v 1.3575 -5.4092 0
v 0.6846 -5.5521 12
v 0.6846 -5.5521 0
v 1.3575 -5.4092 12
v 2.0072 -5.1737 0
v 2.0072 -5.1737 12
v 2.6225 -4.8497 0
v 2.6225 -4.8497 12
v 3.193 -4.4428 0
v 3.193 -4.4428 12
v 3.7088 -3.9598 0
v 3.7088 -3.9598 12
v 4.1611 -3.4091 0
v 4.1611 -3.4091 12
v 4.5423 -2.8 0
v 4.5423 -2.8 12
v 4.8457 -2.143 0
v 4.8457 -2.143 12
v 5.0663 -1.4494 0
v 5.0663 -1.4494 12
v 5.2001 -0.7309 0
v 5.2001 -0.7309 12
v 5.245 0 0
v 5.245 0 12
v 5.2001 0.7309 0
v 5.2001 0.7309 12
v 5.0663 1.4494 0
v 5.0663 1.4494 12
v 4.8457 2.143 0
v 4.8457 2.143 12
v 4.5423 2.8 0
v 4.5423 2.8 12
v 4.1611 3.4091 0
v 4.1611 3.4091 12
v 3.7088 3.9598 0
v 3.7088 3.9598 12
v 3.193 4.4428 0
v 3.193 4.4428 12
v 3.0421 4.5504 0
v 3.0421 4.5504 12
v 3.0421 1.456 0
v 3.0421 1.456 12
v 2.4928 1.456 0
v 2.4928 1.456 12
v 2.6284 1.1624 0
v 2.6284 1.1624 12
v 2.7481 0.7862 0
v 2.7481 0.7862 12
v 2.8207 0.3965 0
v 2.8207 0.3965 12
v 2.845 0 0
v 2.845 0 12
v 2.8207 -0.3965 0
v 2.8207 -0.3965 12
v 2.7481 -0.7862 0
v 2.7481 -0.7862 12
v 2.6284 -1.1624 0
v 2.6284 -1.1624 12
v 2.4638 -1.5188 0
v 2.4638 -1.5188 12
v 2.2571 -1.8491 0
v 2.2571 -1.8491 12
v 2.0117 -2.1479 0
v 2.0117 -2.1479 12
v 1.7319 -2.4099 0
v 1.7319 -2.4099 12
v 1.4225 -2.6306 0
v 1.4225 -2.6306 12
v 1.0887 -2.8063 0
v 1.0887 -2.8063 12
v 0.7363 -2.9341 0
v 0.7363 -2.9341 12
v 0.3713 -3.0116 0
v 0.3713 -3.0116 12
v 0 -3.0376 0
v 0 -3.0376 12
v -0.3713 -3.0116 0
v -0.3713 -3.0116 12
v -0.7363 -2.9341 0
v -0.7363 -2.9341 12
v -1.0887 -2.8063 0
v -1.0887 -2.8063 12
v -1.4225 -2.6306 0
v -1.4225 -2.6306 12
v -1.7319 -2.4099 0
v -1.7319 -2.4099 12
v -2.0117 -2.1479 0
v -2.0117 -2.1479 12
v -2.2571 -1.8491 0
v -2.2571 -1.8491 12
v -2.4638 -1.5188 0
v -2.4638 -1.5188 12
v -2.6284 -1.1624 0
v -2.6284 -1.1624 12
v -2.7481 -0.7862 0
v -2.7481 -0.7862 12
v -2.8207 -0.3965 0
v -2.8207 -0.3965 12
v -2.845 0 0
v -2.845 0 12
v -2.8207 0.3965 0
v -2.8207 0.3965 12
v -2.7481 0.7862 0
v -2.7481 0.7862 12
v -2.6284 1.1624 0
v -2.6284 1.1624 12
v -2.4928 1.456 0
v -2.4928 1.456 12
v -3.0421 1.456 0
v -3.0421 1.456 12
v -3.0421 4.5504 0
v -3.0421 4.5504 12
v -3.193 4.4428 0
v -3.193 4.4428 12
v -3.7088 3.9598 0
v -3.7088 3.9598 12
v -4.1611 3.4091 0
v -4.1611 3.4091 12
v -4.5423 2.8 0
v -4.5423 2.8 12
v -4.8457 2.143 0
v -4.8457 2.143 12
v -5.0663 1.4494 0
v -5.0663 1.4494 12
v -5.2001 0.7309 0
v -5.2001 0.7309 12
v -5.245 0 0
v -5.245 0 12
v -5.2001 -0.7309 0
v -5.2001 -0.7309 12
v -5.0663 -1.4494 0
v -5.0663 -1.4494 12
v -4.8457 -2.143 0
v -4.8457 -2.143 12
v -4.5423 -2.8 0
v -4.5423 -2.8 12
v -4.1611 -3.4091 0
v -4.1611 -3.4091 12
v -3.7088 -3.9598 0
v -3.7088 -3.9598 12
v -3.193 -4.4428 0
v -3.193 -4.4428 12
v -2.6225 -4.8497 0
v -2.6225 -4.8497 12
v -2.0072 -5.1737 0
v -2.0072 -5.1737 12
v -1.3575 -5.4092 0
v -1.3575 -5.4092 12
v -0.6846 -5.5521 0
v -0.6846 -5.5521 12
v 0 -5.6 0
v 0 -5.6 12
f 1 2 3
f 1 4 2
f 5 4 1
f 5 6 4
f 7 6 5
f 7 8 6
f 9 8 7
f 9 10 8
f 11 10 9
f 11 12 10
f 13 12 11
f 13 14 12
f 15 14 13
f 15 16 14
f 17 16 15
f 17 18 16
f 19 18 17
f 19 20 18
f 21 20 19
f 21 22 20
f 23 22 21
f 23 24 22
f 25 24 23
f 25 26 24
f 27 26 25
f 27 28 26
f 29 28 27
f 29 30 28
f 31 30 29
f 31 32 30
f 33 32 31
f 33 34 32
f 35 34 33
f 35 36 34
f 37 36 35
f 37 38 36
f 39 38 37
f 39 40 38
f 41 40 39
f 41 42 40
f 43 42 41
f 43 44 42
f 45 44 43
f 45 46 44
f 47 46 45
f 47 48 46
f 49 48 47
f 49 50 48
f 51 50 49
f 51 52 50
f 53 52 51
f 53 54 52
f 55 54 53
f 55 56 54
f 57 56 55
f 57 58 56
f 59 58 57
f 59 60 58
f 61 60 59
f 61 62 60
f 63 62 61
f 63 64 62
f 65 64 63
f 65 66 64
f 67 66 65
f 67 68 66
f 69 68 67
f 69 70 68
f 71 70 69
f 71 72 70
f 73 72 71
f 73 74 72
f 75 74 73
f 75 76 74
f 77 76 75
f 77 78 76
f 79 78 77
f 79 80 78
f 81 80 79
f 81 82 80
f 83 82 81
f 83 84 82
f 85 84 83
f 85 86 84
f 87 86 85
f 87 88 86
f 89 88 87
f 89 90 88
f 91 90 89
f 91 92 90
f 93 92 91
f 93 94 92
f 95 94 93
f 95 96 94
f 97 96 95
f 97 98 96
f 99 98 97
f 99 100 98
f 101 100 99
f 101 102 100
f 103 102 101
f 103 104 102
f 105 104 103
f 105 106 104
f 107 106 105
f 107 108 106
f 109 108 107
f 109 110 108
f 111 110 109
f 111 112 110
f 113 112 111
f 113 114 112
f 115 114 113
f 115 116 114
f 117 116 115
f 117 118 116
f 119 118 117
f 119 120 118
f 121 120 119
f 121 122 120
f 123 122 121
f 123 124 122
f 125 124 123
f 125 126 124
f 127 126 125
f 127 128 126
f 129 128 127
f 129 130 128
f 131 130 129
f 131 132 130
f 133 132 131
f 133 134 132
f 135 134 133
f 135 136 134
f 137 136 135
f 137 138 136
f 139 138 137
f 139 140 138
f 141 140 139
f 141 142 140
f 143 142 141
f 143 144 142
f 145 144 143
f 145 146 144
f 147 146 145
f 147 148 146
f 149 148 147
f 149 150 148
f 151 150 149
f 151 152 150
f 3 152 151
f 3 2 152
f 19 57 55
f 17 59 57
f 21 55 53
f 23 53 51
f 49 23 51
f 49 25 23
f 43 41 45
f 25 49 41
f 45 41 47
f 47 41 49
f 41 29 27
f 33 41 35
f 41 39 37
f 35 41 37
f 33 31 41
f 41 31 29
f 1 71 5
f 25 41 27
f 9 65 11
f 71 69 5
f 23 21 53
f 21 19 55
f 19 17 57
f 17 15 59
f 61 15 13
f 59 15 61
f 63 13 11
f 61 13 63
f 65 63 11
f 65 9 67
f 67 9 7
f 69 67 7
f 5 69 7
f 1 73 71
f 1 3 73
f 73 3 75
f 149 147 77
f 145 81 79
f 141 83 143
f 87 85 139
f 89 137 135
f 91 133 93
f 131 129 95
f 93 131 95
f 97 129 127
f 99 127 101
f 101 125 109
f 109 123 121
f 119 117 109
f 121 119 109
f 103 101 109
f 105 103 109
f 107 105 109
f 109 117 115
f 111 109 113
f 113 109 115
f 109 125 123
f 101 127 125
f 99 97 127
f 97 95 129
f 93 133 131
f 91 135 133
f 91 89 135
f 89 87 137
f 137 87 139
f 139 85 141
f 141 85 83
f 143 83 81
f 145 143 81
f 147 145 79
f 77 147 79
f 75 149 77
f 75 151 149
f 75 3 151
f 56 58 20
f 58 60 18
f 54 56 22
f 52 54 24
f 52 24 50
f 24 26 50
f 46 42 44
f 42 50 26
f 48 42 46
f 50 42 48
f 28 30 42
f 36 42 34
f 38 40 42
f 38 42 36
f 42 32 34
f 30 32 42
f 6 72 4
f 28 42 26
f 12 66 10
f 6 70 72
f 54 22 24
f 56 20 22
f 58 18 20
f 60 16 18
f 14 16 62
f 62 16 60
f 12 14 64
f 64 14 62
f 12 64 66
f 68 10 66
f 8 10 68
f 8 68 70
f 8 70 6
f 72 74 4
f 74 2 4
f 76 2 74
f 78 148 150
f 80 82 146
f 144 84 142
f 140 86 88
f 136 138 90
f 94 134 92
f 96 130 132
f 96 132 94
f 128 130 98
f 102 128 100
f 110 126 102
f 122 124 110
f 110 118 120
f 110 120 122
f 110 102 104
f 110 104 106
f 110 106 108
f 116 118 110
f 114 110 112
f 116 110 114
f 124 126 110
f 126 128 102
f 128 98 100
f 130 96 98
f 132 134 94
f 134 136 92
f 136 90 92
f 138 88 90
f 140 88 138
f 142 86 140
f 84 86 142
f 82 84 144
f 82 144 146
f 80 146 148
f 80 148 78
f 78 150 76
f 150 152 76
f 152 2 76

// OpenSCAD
// ============================================================================
// Get Me An Alt — Parametric OpenSCAD Module
// Part: PRT-07 — Rim-Snap 6mm Silicone Tube Clip (tube-clip)
// Function: Guides and secures silicone delivery tubing along the rim.
// Target Bounding Box (mm): [10.49, 11.2, 12]
// Print Material: PETG | Min Wall: >= 1.6mm | Tolerance: 0.2mm
// ============================================================================
$fn = 48;
part_width = 10.49;
part_depth = 11.2;
part_height = 12;
wall_thickness = 2.4;
floor_thickness = 2.4;
corner_radius = 2.62;
tolerance = 0.2;
m3_clearance_d = 3.4; // M3 screw clearance hole (3.0mm + 2*0.2mm)

module rounded_rect_prism(w, d, h, r) {
  cr = max(0.5, min(r, min(w, d) / 2 - 0.1));
  linear_extrude(height = h)
    offset(r = cr)
      offset(r = -cr)
        square([w, d], center = true);
}

module part_tube_clip() {
  linear_extrude(height = part_height)
    difference() {
      scale([1, part_depth / part_width])
        circle(d = part_width);
      scale([1, part_depth / part_width])
        circle(d = max(2.0, part_width - 2 * 2.4));
      // Snap-fit C-clip opening jaws
      translate([0, part_depth * 0.38])
        square([part_width * 0.58, part_depth * 0.5], center = true);
    }
}

part_tube_clip();
